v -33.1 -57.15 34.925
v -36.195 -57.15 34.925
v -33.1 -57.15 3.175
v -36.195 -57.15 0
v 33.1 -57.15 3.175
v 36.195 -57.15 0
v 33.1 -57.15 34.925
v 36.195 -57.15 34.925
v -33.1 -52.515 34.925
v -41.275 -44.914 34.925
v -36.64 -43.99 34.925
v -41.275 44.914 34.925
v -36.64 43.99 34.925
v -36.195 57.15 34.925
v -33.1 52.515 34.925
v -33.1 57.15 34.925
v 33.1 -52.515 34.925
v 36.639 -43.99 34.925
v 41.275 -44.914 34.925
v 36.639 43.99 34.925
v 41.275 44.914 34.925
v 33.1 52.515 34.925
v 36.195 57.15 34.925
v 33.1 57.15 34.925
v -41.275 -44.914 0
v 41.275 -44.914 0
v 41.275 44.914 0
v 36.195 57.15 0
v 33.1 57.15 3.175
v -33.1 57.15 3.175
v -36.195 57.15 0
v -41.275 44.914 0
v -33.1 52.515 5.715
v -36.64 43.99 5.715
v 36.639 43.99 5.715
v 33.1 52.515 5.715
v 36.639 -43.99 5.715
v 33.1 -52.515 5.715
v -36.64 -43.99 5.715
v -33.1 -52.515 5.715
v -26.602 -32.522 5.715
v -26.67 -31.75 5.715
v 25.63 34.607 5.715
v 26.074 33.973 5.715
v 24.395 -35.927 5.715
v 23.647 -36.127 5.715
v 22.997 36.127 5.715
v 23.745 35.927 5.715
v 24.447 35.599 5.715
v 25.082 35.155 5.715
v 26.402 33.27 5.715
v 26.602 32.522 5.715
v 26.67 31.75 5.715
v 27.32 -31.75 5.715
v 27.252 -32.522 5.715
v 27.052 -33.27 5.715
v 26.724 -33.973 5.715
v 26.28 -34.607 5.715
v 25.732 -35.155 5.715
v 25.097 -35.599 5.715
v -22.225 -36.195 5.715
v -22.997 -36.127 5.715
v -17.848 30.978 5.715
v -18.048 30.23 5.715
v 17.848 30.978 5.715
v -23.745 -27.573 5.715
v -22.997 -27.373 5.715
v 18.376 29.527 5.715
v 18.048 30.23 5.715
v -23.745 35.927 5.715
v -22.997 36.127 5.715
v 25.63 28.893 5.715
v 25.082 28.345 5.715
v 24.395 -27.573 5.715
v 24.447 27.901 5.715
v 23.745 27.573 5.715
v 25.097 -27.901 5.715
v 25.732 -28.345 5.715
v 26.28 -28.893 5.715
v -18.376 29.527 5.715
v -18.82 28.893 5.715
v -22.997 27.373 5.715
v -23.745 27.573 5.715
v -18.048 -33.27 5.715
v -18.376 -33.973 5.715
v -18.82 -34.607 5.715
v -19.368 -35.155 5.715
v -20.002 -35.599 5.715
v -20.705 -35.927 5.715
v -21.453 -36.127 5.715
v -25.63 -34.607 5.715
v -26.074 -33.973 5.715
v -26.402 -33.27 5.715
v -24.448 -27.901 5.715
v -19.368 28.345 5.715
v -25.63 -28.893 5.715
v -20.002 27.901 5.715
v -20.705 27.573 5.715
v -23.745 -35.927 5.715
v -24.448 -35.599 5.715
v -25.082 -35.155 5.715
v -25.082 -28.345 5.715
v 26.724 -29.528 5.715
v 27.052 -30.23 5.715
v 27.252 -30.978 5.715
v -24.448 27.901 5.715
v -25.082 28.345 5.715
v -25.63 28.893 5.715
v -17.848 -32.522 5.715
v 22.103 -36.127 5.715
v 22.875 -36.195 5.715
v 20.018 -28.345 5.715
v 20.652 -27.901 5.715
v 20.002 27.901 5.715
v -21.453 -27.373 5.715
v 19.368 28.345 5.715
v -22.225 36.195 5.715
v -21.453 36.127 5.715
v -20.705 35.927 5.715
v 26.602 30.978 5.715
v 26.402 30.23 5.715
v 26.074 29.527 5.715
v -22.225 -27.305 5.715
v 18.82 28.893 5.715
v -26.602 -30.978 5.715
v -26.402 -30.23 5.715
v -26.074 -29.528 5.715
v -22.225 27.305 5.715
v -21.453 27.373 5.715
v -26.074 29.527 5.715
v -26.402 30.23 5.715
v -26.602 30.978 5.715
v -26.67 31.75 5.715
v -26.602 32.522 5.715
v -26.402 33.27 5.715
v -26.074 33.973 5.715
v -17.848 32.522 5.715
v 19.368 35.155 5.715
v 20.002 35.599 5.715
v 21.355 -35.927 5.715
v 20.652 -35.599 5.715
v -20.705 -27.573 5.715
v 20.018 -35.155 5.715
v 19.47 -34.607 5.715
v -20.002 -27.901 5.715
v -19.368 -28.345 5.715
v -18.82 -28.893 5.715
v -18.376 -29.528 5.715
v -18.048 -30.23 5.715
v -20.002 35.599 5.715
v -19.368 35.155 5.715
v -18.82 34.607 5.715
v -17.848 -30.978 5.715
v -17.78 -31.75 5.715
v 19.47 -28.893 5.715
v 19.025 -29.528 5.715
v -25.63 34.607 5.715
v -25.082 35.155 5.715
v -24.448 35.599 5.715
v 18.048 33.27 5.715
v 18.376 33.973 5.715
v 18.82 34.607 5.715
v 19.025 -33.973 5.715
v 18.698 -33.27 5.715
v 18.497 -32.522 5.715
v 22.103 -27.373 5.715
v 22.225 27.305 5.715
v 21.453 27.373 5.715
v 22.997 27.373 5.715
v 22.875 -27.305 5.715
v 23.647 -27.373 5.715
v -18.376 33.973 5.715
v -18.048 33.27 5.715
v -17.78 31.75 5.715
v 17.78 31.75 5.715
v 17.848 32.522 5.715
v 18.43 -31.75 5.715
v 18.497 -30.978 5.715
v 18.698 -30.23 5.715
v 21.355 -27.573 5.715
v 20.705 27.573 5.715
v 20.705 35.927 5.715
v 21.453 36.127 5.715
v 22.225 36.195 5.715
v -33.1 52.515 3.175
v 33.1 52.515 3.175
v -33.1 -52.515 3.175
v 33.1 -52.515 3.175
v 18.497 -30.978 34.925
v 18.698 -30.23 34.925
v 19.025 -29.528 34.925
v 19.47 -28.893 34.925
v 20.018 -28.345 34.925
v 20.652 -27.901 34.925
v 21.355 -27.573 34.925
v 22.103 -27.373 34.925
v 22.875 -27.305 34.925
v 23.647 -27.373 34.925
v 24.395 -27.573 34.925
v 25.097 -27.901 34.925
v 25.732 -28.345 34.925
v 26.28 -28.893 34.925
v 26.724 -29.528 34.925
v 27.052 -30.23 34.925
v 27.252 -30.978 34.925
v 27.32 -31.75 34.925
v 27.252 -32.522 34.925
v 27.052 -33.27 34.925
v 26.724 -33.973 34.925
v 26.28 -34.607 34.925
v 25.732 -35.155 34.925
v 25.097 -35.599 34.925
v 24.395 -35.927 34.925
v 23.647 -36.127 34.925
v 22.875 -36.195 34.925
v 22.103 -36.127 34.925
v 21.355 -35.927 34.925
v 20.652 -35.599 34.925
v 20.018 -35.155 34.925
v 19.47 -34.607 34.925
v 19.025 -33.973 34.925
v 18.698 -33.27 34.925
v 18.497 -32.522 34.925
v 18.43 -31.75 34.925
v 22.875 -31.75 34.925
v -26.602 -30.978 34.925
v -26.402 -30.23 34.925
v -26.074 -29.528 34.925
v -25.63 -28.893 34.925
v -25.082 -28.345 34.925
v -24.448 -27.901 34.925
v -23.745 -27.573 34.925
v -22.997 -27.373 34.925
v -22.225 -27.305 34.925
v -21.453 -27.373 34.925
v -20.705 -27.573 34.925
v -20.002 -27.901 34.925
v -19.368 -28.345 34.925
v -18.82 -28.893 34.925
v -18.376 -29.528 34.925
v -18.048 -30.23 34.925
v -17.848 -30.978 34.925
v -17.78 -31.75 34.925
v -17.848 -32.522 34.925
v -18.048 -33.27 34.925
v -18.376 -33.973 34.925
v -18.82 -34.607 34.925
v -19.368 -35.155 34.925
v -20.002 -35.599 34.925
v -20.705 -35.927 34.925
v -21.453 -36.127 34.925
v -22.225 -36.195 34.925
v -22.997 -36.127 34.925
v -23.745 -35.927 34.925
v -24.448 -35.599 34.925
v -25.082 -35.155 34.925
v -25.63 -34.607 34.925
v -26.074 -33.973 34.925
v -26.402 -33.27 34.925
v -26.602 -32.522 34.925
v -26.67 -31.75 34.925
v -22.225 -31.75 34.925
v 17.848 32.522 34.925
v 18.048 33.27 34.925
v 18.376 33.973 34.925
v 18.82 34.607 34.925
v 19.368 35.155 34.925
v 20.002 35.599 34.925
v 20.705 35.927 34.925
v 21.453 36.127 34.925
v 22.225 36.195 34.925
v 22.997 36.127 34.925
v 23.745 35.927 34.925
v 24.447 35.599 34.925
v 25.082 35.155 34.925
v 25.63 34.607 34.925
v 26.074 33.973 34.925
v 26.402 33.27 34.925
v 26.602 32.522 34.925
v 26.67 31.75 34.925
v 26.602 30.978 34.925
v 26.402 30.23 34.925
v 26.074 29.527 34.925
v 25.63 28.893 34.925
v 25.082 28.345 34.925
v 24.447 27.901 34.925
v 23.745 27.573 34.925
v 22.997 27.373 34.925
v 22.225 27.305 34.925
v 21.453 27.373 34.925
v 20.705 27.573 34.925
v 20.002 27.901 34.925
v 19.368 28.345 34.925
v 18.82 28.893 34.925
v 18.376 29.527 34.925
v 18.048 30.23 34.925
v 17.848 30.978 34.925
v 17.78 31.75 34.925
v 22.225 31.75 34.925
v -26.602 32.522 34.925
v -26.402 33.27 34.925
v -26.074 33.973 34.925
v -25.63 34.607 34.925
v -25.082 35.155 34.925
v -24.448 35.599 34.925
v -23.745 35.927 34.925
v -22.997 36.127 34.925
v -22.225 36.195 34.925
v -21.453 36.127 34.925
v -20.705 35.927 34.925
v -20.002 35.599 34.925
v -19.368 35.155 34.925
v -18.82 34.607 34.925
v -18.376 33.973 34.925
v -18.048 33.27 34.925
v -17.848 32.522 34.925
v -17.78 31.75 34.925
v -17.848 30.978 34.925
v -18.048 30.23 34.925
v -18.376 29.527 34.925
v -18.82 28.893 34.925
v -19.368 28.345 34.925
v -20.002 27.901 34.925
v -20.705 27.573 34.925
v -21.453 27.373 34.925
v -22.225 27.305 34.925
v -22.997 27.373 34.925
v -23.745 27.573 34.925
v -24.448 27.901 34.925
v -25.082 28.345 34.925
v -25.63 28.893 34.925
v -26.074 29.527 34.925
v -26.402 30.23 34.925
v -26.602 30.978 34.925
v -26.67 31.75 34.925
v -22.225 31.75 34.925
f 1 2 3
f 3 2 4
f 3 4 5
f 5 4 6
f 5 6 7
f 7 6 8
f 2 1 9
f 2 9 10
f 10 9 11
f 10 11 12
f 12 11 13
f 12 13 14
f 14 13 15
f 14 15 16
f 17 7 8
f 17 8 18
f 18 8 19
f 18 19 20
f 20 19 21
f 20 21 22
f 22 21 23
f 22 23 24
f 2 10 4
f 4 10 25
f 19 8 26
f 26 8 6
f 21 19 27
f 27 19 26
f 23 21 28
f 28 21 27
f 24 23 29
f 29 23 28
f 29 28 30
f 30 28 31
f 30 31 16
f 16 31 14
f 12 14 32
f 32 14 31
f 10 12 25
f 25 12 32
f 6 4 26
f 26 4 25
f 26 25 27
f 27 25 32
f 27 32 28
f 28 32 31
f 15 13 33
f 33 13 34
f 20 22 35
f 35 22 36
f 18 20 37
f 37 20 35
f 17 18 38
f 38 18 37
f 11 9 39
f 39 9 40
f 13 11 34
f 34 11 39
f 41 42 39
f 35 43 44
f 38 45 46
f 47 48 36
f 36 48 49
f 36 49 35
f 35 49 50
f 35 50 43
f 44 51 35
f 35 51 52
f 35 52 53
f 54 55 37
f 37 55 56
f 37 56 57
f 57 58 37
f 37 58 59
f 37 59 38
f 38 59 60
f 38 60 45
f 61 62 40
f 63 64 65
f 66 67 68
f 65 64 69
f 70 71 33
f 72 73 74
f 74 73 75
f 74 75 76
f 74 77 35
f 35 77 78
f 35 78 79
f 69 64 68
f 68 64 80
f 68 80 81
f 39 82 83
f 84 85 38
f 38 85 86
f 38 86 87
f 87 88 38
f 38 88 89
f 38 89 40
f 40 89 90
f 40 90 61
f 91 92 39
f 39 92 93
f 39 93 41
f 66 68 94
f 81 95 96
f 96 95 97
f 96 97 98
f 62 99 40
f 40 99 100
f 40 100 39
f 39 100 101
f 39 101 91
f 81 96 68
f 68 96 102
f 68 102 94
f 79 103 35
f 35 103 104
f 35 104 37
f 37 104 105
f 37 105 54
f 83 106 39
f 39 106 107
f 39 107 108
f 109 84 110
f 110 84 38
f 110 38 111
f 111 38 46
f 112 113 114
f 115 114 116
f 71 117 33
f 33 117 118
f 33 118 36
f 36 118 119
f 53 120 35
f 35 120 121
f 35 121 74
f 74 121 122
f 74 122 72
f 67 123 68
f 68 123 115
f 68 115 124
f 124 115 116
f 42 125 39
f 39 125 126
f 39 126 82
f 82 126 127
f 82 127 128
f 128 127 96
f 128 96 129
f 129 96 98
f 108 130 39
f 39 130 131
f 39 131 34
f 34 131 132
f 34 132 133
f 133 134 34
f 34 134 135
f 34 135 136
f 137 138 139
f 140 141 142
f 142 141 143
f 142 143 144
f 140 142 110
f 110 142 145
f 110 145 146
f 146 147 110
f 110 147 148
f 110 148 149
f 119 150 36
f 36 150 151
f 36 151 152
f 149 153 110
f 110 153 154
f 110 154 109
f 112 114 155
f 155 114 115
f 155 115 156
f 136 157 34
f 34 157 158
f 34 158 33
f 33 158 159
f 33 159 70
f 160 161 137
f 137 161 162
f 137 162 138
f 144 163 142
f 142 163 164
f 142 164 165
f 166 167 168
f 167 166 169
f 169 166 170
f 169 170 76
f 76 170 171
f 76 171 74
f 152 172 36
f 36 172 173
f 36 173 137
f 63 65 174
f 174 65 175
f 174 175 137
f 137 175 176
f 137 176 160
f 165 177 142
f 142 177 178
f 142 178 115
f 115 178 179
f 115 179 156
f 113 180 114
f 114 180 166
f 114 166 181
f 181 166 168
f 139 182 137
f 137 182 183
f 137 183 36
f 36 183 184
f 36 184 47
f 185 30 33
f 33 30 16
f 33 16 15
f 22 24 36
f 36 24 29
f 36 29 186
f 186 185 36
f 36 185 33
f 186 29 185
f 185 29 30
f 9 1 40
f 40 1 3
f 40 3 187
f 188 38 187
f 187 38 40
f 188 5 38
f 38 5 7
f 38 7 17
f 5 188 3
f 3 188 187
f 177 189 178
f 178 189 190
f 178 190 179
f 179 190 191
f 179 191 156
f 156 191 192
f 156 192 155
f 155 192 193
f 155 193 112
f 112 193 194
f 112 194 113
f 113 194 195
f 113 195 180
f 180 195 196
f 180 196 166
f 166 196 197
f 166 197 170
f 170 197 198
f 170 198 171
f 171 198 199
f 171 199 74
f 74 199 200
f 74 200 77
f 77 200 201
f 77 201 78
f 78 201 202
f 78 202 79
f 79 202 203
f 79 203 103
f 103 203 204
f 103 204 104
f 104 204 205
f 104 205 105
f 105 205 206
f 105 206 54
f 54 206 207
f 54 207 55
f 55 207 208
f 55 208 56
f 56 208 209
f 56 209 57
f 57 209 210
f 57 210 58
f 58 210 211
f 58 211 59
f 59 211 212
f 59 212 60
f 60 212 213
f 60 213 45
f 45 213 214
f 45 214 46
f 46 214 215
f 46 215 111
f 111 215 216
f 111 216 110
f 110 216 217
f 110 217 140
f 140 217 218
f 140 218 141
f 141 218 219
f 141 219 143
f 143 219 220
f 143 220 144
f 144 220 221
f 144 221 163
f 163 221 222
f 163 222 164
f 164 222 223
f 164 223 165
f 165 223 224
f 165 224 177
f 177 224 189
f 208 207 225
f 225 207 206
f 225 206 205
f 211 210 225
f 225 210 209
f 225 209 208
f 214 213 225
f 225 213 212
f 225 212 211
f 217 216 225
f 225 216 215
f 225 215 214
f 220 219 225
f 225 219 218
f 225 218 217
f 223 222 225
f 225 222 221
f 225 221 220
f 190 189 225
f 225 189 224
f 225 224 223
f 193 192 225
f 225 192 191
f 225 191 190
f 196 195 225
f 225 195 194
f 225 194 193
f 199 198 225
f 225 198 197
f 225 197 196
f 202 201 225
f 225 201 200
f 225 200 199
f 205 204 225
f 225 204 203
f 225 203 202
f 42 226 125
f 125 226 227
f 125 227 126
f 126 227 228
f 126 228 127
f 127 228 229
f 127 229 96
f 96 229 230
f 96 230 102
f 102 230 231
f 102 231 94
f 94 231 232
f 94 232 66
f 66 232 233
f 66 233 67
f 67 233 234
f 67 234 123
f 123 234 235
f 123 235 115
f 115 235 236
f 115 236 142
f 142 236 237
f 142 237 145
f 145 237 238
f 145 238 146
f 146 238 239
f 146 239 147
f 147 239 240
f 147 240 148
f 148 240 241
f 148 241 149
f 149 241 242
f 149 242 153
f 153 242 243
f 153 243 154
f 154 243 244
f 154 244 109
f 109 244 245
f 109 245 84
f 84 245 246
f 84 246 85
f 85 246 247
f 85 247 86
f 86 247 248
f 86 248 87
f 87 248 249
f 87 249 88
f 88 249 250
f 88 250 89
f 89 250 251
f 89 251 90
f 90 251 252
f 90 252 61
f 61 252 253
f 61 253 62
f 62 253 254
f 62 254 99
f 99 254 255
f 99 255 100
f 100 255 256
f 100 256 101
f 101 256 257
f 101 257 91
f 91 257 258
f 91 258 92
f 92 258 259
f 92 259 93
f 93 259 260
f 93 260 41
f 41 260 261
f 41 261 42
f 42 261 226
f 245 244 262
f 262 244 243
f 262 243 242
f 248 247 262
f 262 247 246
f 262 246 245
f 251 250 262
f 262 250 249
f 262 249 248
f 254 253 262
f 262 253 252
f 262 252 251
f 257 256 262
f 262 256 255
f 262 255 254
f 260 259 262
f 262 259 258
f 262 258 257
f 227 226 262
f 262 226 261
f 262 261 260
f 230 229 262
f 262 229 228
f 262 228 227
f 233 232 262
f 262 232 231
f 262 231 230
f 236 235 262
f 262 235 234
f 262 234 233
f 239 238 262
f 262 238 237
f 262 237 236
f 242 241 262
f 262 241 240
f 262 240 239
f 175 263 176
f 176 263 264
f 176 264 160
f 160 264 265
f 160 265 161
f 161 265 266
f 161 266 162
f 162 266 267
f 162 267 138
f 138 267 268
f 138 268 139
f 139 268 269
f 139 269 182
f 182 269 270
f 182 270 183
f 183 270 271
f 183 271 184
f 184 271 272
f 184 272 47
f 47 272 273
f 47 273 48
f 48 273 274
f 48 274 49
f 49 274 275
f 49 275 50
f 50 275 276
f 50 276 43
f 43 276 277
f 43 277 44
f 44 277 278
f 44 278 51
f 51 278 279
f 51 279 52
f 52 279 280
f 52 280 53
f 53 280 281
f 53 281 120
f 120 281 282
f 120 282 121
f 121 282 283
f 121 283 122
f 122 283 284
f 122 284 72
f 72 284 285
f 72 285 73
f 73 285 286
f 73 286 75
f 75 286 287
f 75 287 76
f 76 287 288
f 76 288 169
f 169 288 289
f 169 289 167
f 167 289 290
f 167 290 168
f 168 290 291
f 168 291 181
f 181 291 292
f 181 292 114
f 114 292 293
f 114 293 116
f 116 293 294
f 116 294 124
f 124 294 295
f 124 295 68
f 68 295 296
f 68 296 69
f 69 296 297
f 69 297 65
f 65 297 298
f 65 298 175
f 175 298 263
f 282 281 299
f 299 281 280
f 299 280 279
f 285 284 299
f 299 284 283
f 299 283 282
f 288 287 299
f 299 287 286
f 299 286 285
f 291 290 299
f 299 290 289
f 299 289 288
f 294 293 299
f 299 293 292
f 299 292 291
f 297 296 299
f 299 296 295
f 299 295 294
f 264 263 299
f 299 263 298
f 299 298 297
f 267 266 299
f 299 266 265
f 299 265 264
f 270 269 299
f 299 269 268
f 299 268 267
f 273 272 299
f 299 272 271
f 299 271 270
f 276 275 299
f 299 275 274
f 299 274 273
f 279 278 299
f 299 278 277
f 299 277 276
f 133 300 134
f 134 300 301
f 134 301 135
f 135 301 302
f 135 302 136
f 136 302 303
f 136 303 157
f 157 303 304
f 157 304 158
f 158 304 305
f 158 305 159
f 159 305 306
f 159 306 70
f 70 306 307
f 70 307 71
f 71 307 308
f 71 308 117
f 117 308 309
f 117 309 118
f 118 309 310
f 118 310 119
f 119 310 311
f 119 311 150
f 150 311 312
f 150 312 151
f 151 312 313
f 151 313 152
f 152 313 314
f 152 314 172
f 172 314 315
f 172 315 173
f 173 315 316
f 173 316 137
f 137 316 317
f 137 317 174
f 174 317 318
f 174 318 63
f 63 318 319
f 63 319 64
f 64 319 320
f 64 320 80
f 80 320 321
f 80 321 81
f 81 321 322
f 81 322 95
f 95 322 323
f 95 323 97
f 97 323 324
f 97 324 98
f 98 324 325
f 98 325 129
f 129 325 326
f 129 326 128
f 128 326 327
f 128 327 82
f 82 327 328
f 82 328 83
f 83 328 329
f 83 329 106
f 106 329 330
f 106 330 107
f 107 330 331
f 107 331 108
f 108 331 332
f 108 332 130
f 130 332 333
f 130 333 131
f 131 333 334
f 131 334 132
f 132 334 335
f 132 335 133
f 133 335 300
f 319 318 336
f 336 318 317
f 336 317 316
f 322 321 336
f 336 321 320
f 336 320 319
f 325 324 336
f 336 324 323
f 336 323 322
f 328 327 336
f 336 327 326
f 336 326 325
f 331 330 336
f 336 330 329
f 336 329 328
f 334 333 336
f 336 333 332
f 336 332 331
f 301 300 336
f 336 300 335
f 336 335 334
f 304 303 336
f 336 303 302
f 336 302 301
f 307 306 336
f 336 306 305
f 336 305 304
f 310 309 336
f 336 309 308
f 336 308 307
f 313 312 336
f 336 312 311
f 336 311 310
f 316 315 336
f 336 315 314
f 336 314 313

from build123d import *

# Parameters (mm, degrees)
BOSS_EXTRUDE1_DEPTH = 5.715
BOSS_EXTRUDE2_DEPTH = 29.21
SKETCH3_W           = 66.200858932
SKETCH3_H           = 4.6355
CUT_EXTRUDE1_DEPTH  = 31.75
SKETCH4_R           = 4.445
BOSS_EXTRUDE3_DEPTH = 29.21


with BuildPart() as part:
    # Sketch1 → Boss-Extrude1 (new body)
    with BuildSketch(Plane.XY):
        Polygon((41.275, 44.914422768), (36.195, 57.15), (-36.195, 57.15), (-41.275, 44.914422768), (-41.275, -44.914422768), (-36.195, -57.15), (36.195, -57.15), (41.275, -44.914422768), align=None)
    extrude(amount=BOSS_EXTRUDE1_DEPTH)

    # Sketch2 → Boss-Extrude2 (add)
    with BuildSketch(Plane.XY.offset(5.715)):
        Polygon((-41.275, 44.914422768), (-41.275, -44.914422768), (-36.195, -57.15), (36.195, -57.15), (41.275, -44.914422768), (41.275, 44.914422768), (36.195, 57.15), (-36.195, 57.15), align=None)
        Polygon((-33.100429466, 52.5145), (-36.6395, 43.99037188), (-36.6395, -43.99037188), (-33.100429466, -52.5145), (33.100429466, -52.5145), (36.6395, -43.99037188), (36.6395, 43.99037188), (33.100429466, 52.5145), align=None, mode=Mode.SUBTRACT)
    extrude(amount=BOSS_EXTRUDE2_DEPTH)

    # Sketch3 → Cut-Extrude1 (cut)
    with BuildSketch(Plane.XY.offset(34.925)):
        with Locations((0, 54.83225)):
            Rectangle(SKETCH3_W, SKETCH3_H)
    cut_extrude1 = extrude(amount=-CUT_EXTRUDE1_DEPTH, mode=Mode.SUBTRACT)

    # Mirror1: Cut-Extrude1 across plane
    add(cut_extrude1.mirror(Plane.ZX), mode=Mode.SUBTRACT)

    # Sketch4 → Boss-Extrude3 (add)
    with BuildSketch(Plane.XY.offset(5.715)):
        with Locations((22.874903427, -31.75)):
            Circle(SKETCH4_R)
        with Locations((-22.225, -31.75)):
            Circle(SKETCH4_R)
        with Locations((22.225, 31.75)):
            Circle(SKETCH4_R)
        with Locations((-22.225, 31.75)):
            Circle(SKETCH4_R)
    extrude(amount=BOSS_EXTRUDE3_DEPTH)


solid = part.part
